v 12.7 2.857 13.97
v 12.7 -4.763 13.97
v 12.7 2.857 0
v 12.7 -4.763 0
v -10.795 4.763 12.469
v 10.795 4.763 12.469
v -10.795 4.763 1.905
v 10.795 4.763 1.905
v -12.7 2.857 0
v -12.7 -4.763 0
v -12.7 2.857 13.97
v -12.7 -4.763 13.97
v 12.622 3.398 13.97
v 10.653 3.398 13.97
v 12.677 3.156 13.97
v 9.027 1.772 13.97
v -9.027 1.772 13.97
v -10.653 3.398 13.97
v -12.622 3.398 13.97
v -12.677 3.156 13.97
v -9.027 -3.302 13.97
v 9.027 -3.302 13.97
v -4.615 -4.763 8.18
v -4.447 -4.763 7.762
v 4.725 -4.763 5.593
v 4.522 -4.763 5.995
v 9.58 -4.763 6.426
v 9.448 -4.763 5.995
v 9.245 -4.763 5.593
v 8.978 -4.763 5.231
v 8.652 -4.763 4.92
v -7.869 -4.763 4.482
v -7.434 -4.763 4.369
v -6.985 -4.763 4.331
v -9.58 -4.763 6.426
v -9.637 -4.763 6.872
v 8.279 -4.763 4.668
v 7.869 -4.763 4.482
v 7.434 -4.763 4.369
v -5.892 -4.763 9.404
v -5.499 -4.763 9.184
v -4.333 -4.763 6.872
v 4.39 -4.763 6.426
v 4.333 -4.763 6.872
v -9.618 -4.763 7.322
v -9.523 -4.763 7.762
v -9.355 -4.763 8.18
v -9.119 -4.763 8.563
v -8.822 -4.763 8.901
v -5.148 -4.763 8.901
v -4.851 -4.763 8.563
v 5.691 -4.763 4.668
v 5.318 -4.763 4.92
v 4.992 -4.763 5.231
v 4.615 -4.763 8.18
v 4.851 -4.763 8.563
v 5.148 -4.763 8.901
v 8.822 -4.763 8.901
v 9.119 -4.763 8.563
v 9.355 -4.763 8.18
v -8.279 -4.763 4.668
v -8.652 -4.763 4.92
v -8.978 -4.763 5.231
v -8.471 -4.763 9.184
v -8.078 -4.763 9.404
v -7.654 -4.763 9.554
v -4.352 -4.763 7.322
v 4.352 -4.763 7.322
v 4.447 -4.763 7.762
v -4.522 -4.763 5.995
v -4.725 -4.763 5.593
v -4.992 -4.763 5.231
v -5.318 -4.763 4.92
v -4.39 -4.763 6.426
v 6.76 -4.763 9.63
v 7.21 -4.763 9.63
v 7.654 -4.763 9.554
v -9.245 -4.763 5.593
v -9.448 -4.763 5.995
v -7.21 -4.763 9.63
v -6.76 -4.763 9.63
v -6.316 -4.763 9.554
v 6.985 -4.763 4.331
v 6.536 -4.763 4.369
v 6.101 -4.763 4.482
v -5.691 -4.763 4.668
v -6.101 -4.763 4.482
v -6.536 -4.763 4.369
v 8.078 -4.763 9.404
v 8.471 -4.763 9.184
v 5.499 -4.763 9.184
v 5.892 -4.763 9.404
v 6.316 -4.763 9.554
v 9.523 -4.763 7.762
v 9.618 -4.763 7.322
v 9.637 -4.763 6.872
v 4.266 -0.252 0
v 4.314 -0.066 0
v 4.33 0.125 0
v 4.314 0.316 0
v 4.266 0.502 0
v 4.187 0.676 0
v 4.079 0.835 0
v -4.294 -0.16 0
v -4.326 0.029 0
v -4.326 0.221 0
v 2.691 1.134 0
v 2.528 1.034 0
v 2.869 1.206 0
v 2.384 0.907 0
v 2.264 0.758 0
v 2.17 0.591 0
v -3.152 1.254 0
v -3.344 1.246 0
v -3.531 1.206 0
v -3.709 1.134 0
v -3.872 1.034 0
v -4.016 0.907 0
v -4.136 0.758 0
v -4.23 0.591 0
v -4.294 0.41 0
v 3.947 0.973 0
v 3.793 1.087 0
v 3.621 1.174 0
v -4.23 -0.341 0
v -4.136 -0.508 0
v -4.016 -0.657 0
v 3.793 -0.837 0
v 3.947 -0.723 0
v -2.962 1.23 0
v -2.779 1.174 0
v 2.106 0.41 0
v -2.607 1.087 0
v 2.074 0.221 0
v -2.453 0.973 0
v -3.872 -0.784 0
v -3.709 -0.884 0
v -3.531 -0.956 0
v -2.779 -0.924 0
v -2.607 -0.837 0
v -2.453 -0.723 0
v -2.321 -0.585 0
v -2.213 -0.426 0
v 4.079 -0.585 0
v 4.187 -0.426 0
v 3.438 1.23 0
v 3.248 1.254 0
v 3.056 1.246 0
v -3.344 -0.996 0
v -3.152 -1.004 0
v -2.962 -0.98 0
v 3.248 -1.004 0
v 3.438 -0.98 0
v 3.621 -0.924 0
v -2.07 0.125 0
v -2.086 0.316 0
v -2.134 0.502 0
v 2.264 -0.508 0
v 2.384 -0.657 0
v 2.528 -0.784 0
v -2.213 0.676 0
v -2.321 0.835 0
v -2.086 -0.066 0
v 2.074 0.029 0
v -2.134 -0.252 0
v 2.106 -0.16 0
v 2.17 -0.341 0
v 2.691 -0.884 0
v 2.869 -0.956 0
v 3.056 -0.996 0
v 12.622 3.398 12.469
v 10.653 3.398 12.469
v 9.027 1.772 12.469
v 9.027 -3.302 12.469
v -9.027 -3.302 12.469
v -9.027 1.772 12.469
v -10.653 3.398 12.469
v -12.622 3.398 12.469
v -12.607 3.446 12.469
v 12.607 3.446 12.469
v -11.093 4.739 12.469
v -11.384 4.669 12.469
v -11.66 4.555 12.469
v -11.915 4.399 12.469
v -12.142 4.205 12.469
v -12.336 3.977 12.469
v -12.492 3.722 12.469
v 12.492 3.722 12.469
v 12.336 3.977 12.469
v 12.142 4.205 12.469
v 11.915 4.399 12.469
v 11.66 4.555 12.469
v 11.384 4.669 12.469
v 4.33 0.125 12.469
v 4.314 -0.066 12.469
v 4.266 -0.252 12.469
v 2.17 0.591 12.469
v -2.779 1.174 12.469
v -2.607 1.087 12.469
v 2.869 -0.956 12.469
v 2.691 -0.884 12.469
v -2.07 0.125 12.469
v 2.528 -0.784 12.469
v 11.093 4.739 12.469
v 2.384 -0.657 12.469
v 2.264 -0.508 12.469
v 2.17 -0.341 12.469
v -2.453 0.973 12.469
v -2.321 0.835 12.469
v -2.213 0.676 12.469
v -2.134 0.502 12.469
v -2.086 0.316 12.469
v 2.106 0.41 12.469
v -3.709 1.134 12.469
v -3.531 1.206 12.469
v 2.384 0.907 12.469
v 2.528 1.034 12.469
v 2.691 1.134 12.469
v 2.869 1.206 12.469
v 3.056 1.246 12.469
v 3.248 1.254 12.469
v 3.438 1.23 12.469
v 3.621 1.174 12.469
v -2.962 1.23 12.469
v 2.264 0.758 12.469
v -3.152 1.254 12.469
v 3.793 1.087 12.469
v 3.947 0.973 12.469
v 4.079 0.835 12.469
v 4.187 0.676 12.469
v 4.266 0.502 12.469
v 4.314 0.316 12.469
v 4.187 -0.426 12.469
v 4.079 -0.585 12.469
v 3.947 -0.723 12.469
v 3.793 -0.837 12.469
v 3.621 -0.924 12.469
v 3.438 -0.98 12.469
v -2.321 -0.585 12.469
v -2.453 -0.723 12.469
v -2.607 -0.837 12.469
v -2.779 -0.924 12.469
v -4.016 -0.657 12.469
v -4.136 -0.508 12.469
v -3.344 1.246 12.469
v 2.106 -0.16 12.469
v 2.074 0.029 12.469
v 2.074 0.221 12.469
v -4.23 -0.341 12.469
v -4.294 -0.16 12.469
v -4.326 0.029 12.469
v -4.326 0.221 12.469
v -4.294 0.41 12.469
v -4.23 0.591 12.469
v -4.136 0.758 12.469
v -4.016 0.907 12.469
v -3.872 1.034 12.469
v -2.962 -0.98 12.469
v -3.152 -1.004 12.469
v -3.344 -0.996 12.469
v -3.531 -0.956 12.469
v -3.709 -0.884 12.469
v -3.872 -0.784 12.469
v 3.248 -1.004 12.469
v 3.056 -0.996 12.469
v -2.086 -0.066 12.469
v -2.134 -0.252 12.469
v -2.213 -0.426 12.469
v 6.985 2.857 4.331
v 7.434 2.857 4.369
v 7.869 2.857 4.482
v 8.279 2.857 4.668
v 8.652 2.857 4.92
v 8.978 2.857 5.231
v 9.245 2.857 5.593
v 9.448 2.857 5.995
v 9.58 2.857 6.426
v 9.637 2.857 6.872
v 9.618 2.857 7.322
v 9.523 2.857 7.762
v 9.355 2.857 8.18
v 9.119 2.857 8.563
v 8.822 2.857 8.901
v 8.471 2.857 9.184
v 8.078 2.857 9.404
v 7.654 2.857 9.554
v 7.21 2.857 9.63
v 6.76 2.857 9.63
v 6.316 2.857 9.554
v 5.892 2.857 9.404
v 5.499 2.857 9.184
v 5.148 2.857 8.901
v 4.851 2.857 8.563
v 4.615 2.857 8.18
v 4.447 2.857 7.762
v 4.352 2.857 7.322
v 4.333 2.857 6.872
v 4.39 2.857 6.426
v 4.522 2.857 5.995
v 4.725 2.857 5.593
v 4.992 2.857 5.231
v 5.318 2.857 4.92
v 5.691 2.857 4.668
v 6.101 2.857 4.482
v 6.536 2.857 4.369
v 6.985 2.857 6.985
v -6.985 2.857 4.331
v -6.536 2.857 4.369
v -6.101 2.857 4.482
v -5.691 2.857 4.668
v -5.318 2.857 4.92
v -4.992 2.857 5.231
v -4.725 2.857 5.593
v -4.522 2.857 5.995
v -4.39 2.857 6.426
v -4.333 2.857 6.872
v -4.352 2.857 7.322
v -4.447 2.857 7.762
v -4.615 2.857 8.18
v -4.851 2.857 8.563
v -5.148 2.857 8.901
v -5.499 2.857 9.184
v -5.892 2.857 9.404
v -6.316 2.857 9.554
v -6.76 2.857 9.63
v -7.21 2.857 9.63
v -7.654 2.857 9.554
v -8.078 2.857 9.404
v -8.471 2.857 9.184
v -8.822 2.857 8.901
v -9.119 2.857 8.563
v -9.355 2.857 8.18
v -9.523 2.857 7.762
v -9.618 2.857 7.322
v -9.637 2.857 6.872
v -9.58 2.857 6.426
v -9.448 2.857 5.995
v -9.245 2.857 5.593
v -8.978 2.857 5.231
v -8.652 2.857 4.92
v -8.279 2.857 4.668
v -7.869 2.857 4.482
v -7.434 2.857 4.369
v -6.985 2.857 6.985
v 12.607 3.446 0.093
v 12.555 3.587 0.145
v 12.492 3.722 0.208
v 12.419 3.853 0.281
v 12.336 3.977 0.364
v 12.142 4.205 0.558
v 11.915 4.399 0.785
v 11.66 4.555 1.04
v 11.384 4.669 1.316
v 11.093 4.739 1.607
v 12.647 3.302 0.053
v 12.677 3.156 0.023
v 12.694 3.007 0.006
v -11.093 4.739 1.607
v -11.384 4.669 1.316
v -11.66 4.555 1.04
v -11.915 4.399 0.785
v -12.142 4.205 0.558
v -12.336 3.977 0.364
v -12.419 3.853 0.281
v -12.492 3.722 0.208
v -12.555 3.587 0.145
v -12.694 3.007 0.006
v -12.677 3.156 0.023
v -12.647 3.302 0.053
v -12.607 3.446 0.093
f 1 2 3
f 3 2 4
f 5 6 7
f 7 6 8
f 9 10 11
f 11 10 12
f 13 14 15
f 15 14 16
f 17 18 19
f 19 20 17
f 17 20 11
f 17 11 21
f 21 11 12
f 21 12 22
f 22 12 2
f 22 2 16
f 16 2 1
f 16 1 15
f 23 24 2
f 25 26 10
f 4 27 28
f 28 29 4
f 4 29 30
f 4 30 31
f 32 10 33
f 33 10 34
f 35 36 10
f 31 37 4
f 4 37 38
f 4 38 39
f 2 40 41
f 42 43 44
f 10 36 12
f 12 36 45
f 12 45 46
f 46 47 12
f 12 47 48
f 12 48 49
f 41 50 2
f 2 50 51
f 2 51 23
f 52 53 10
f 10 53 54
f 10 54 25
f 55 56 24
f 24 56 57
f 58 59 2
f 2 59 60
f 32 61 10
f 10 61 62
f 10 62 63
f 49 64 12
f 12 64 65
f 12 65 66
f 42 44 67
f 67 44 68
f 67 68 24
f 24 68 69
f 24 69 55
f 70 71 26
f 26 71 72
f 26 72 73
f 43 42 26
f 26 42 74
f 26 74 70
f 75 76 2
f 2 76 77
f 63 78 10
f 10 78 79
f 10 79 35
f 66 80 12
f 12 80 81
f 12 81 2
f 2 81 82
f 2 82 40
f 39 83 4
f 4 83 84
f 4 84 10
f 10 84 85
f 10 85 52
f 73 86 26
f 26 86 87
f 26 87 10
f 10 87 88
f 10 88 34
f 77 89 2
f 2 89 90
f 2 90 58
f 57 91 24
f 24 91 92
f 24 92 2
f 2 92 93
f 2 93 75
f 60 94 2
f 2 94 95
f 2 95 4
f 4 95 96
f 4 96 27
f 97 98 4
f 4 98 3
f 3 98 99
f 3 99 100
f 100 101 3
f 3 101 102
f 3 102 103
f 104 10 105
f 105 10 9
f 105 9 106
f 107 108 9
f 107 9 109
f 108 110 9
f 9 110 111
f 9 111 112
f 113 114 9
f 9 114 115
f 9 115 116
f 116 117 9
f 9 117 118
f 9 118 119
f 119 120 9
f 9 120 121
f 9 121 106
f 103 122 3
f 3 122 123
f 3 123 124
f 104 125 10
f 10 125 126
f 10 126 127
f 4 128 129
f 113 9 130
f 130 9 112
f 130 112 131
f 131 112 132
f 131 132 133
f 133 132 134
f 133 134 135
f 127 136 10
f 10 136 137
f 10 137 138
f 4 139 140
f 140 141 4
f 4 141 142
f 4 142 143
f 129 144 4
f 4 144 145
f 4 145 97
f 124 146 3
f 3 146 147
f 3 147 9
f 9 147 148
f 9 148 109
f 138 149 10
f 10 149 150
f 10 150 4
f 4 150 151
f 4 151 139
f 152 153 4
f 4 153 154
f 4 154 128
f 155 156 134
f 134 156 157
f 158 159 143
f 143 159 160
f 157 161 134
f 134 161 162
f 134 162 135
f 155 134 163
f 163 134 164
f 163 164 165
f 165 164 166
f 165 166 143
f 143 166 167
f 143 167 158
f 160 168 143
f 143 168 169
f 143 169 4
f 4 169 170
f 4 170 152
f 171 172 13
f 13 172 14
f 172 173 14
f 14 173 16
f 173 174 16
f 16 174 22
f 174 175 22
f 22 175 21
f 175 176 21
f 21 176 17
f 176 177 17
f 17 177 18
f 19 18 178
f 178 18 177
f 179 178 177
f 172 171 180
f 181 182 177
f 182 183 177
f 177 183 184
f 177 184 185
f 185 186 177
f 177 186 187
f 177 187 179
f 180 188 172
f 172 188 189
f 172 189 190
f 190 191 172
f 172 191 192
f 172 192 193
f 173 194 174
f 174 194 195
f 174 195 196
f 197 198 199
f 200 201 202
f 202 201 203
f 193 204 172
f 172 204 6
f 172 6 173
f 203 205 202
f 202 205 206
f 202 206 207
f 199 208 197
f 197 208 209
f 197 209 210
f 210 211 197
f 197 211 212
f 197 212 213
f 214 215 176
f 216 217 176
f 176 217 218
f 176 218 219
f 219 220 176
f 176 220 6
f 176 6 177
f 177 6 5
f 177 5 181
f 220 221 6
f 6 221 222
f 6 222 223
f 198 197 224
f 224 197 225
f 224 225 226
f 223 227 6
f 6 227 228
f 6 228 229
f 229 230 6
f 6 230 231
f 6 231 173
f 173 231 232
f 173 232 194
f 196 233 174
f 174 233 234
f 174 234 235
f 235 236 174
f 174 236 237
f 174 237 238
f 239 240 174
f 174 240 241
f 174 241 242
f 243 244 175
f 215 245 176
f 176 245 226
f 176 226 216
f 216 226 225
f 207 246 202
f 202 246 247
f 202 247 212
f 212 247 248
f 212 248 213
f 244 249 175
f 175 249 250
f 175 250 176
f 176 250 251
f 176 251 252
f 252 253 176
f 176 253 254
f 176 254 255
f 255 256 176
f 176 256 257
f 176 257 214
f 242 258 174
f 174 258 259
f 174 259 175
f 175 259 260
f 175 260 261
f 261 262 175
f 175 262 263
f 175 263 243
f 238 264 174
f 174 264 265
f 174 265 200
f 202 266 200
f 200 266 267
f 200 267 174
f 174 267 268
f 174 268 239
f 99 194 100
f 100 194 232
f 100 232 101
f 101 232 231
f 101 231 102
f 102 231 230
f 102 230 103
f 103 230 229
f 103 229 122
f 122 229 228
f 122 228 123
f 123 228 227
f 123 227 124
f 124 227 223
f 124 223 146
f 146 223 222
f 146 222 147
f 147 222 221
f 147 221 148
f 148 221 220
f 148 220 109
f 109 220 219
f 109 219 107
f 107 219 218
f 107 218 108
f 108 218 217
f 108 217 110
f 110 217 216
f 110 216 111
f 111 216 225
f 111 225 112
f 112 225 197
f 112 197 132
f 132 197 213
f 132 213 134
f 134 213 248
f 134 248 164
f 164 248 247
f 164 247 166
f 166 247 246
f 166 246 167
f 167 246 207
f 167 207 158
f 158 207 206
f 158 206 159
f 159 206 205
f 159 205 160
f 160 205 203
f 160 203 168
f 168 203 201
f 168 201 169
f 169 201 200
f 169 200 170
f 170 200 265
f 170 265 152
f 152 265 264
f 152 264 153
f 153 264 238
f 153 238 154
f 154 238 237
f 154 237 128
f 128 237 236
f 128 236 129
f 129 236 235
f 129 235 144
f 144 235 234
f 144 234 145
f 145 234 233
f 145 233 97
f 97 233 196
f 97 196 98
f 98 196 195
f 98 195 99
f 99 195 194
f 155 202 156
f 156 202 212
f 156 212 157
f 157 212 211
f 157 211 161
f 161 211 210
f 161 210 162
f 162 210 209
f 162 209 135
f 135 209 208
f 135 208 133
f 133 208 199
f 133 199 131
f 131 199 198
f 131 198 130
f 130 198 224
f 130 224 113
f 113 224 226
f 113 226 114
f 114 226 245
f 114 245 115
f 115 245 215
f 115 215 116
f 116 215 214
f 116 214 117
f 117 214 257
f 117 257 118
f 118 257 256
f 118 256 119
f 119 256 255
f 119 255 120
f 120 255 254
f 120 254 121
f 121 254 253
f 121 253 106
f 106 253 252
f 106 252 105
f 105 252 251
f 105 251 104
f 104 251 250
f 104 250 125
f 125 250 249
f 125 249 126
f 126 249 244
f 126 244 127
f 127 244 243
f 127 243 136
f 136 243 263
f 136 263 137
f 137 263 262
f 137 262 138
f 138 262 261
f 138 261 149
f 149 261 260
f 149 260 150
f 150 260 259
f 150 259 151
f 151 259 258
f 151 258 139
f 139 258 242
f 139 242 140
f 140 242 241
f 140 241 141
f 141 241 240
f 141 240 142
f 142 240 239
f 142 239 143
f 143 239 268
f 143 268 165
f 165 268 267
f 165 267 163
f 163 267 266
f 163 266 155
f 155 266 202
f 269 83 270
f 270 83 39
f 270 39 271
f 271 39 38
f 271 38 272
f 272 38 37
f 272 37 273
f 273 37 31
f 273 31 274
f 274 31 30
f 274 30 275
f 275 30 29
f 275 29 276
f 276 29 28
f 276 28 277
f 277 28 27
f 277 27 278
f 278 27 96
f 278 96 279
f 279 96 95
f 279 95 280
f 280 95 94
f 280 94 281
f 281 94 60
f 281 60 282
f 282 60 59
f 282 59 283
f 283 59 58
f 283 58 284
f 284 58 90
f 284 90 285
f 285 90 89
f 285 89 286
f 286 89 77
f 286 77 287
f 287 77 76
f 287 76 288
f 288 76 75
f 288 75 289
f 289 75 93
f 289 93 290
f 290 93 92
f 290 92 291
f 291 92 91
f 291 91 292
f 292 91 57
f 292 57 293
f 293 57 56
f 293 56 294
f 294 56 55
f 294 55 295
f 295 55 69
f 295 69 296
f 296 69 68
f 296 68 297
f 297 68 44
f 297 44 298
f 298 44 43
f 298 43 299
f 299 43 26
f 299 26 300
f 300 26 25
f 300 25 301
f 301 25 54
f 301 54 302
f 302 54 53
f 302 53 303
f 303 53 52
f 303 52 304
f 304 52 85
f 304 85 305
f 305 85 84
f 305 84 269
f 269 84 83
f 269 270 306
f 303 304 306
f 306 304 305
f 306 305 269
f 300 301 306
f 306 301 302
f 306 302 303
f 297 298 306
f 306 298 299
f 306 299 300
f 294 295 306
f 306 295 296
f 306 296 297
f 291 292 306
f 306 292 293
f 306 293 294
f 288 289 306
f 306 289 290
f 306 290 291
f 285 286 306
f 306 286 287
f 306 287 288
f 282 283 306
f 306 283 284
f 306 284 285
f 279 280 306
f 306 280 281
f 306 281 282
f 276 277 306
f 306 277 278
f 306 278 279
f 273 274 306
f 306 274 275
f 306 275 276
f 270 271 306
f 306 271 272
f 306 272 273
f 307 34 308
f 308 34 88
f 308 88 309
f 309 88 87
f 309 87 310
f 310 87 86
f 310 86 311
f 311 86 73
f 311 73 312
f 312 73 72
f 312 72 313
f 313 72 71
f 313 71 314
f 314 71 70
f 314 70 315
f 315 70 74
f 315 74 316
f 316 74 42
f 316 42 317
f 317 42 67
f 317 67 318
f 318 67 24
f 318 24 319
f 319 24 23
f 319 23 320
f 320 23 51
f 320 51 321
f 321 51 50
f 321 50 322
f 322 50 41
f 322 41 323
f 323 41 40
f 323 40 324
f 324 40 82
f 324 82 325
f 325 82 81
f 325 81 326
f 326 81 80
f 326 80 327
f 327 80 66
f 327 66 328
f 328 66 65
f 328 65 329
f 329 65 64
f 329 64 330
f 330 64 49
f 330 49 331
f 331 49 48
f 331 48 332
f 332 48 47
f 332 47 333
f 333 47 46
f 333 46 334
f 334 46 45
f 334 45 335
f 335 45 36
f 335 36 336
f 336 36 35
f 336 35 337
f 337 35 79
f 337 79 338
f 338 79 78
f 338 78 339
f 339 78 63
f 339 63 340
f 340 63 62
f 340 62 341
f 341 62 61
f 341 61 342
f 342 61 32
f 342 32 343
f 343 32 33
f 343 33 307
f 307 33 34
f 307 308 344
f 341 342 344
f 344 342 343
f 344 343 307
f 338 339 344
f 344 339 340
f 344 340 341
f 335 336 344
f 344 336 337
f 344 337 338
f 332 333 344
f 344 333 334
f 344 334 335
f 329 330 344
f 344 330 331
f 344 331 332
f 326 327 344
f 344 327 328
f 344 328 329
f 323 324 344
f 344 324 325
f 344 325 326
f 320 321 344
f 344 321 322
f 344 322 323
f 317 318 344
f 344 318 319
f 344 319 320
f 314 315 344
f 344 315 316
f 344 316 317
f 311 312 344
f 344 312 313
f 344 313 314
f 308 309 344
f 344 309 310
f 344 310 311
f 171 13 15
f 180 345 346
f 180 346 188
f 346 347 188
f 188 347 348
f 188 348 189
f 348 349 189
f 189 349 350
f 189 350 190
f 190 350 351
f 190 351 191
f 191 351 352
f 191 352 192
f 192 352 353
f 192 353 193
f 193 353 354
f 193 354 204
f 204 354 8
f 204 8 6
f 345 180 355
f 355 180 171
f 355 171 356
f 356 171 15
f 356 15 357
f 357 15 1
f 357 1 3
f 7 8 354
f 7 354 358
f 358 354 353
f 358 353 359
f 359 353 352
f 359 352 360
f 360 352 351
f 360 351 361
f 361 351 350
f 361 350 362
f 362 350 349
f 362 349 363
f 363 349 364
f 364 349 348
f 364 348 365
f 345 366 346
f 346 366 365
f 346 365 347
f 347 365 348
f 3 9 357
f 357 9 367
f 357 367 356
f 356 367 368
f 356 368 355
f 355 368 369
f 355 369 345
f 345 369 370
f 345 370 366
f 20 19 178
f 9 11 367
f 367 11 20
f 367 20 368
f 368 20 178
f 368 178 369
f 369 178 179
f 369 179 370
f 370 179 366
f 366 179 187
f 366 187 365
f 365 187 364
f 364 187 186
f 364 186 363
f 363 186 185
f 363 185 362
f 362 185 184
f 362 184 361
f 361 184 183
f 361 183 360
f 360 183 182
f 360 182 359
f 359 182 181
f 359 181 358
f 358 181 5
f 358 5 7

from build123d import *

# Parameters (mm, degrees)
SKETCH1_W             = 25.4
SKETCH1_H             = 9.525
BOSS_EXTRUDE1_DEPTH   = 13.97
CUT_EXTRUDE1_DEPTH    = 1.50114
F_4_40_TAPPED_HOLE1_D = 2.2606
SKETCH5_R             = 2.6543
CUT_EXTRUDE2_DEPTH    = 7.62
FILLET1_R             = 1.905


with BuildPart() as part:
    # Sketch1 → Boss-Extrude1 (new body)
    with BuildSketch(Plane.XY):
        Rectangle(SKETCH1_W, SKETCH1_H)
    extrude(amount=BOSS_EXTRUDE1_DEPTH)

    # Sketch2 → Cut-Extrude1 (cut)
    with BuildSketch(Plane.XY.offset(13.97)):
        Polygon((10.6, 3.525), (12.7, 3.525), (12.7, 4.7625), (-12.7, 4.7625), (-12.681617083, 3.525), (-10.6, 3.525), (-8.9, 1.825), (-8.9, -3.175), (8.9, -3.175), (8.9, 1.825), align=None)
        Polygon((12.7, 3.398), (12.7, 3.525), (10.6, 3.525), (8.9, 1.825), (8.9, -3.175), (-8.9, -3.175), (-8.9, 1.825), (-10.6, 3.525), (-12.681617083, 3.525), (-12.7, 4.7625), (-12.7, 3.398), (-10.652605122, 3.398), (-9.027, 1.772394878), (-9.027, -3.302), (9.027, -3.302), (9.027, 1.772394878), (10.652605122, 3.398), align=None)
    extrude(amount=-CUT_EXTRUDE1_DEPTH, mode=Mode.SUBTRACT)

    # #4-40 Tapped Hole1 (through all)
    with Locations(Plane.XY.offset(12.46886)):
        with Locations((-3.2, 0.125), (3.2, 0.125)):
            Hole(F_4_40_TAPPED_HOLE1_D / 2)

    # Sketch5 → Cut-Extrude2 (cut)
    with BuildSketch(Plane.XZ.offset(4.7625)):
        with Locations(Location((-6.985, 6.985, 0), (0, 0, 270))):
            Circle(SKETCH5_R)
        with Locations(Location((6.985, 6.985, 0), (0, 0, 270))):
            Circle(SKETCH5_R)
    extrude(amount=-CUT_EXTRUDE2_DEPTH, mode=Mode.SUBTRACT)

    # Fillet1
    fillet1_edges = [part.edges().sort_by_distance(p)[0] for p in [
        (-12.7, 4.7625, 6.23443),
        (0, 4.7625, 0),
        (12.7, 4.7625, 6.23443),
    ]]
    fillet(fillet1_edges, radius=FILLET1_R)


solid = part.part
